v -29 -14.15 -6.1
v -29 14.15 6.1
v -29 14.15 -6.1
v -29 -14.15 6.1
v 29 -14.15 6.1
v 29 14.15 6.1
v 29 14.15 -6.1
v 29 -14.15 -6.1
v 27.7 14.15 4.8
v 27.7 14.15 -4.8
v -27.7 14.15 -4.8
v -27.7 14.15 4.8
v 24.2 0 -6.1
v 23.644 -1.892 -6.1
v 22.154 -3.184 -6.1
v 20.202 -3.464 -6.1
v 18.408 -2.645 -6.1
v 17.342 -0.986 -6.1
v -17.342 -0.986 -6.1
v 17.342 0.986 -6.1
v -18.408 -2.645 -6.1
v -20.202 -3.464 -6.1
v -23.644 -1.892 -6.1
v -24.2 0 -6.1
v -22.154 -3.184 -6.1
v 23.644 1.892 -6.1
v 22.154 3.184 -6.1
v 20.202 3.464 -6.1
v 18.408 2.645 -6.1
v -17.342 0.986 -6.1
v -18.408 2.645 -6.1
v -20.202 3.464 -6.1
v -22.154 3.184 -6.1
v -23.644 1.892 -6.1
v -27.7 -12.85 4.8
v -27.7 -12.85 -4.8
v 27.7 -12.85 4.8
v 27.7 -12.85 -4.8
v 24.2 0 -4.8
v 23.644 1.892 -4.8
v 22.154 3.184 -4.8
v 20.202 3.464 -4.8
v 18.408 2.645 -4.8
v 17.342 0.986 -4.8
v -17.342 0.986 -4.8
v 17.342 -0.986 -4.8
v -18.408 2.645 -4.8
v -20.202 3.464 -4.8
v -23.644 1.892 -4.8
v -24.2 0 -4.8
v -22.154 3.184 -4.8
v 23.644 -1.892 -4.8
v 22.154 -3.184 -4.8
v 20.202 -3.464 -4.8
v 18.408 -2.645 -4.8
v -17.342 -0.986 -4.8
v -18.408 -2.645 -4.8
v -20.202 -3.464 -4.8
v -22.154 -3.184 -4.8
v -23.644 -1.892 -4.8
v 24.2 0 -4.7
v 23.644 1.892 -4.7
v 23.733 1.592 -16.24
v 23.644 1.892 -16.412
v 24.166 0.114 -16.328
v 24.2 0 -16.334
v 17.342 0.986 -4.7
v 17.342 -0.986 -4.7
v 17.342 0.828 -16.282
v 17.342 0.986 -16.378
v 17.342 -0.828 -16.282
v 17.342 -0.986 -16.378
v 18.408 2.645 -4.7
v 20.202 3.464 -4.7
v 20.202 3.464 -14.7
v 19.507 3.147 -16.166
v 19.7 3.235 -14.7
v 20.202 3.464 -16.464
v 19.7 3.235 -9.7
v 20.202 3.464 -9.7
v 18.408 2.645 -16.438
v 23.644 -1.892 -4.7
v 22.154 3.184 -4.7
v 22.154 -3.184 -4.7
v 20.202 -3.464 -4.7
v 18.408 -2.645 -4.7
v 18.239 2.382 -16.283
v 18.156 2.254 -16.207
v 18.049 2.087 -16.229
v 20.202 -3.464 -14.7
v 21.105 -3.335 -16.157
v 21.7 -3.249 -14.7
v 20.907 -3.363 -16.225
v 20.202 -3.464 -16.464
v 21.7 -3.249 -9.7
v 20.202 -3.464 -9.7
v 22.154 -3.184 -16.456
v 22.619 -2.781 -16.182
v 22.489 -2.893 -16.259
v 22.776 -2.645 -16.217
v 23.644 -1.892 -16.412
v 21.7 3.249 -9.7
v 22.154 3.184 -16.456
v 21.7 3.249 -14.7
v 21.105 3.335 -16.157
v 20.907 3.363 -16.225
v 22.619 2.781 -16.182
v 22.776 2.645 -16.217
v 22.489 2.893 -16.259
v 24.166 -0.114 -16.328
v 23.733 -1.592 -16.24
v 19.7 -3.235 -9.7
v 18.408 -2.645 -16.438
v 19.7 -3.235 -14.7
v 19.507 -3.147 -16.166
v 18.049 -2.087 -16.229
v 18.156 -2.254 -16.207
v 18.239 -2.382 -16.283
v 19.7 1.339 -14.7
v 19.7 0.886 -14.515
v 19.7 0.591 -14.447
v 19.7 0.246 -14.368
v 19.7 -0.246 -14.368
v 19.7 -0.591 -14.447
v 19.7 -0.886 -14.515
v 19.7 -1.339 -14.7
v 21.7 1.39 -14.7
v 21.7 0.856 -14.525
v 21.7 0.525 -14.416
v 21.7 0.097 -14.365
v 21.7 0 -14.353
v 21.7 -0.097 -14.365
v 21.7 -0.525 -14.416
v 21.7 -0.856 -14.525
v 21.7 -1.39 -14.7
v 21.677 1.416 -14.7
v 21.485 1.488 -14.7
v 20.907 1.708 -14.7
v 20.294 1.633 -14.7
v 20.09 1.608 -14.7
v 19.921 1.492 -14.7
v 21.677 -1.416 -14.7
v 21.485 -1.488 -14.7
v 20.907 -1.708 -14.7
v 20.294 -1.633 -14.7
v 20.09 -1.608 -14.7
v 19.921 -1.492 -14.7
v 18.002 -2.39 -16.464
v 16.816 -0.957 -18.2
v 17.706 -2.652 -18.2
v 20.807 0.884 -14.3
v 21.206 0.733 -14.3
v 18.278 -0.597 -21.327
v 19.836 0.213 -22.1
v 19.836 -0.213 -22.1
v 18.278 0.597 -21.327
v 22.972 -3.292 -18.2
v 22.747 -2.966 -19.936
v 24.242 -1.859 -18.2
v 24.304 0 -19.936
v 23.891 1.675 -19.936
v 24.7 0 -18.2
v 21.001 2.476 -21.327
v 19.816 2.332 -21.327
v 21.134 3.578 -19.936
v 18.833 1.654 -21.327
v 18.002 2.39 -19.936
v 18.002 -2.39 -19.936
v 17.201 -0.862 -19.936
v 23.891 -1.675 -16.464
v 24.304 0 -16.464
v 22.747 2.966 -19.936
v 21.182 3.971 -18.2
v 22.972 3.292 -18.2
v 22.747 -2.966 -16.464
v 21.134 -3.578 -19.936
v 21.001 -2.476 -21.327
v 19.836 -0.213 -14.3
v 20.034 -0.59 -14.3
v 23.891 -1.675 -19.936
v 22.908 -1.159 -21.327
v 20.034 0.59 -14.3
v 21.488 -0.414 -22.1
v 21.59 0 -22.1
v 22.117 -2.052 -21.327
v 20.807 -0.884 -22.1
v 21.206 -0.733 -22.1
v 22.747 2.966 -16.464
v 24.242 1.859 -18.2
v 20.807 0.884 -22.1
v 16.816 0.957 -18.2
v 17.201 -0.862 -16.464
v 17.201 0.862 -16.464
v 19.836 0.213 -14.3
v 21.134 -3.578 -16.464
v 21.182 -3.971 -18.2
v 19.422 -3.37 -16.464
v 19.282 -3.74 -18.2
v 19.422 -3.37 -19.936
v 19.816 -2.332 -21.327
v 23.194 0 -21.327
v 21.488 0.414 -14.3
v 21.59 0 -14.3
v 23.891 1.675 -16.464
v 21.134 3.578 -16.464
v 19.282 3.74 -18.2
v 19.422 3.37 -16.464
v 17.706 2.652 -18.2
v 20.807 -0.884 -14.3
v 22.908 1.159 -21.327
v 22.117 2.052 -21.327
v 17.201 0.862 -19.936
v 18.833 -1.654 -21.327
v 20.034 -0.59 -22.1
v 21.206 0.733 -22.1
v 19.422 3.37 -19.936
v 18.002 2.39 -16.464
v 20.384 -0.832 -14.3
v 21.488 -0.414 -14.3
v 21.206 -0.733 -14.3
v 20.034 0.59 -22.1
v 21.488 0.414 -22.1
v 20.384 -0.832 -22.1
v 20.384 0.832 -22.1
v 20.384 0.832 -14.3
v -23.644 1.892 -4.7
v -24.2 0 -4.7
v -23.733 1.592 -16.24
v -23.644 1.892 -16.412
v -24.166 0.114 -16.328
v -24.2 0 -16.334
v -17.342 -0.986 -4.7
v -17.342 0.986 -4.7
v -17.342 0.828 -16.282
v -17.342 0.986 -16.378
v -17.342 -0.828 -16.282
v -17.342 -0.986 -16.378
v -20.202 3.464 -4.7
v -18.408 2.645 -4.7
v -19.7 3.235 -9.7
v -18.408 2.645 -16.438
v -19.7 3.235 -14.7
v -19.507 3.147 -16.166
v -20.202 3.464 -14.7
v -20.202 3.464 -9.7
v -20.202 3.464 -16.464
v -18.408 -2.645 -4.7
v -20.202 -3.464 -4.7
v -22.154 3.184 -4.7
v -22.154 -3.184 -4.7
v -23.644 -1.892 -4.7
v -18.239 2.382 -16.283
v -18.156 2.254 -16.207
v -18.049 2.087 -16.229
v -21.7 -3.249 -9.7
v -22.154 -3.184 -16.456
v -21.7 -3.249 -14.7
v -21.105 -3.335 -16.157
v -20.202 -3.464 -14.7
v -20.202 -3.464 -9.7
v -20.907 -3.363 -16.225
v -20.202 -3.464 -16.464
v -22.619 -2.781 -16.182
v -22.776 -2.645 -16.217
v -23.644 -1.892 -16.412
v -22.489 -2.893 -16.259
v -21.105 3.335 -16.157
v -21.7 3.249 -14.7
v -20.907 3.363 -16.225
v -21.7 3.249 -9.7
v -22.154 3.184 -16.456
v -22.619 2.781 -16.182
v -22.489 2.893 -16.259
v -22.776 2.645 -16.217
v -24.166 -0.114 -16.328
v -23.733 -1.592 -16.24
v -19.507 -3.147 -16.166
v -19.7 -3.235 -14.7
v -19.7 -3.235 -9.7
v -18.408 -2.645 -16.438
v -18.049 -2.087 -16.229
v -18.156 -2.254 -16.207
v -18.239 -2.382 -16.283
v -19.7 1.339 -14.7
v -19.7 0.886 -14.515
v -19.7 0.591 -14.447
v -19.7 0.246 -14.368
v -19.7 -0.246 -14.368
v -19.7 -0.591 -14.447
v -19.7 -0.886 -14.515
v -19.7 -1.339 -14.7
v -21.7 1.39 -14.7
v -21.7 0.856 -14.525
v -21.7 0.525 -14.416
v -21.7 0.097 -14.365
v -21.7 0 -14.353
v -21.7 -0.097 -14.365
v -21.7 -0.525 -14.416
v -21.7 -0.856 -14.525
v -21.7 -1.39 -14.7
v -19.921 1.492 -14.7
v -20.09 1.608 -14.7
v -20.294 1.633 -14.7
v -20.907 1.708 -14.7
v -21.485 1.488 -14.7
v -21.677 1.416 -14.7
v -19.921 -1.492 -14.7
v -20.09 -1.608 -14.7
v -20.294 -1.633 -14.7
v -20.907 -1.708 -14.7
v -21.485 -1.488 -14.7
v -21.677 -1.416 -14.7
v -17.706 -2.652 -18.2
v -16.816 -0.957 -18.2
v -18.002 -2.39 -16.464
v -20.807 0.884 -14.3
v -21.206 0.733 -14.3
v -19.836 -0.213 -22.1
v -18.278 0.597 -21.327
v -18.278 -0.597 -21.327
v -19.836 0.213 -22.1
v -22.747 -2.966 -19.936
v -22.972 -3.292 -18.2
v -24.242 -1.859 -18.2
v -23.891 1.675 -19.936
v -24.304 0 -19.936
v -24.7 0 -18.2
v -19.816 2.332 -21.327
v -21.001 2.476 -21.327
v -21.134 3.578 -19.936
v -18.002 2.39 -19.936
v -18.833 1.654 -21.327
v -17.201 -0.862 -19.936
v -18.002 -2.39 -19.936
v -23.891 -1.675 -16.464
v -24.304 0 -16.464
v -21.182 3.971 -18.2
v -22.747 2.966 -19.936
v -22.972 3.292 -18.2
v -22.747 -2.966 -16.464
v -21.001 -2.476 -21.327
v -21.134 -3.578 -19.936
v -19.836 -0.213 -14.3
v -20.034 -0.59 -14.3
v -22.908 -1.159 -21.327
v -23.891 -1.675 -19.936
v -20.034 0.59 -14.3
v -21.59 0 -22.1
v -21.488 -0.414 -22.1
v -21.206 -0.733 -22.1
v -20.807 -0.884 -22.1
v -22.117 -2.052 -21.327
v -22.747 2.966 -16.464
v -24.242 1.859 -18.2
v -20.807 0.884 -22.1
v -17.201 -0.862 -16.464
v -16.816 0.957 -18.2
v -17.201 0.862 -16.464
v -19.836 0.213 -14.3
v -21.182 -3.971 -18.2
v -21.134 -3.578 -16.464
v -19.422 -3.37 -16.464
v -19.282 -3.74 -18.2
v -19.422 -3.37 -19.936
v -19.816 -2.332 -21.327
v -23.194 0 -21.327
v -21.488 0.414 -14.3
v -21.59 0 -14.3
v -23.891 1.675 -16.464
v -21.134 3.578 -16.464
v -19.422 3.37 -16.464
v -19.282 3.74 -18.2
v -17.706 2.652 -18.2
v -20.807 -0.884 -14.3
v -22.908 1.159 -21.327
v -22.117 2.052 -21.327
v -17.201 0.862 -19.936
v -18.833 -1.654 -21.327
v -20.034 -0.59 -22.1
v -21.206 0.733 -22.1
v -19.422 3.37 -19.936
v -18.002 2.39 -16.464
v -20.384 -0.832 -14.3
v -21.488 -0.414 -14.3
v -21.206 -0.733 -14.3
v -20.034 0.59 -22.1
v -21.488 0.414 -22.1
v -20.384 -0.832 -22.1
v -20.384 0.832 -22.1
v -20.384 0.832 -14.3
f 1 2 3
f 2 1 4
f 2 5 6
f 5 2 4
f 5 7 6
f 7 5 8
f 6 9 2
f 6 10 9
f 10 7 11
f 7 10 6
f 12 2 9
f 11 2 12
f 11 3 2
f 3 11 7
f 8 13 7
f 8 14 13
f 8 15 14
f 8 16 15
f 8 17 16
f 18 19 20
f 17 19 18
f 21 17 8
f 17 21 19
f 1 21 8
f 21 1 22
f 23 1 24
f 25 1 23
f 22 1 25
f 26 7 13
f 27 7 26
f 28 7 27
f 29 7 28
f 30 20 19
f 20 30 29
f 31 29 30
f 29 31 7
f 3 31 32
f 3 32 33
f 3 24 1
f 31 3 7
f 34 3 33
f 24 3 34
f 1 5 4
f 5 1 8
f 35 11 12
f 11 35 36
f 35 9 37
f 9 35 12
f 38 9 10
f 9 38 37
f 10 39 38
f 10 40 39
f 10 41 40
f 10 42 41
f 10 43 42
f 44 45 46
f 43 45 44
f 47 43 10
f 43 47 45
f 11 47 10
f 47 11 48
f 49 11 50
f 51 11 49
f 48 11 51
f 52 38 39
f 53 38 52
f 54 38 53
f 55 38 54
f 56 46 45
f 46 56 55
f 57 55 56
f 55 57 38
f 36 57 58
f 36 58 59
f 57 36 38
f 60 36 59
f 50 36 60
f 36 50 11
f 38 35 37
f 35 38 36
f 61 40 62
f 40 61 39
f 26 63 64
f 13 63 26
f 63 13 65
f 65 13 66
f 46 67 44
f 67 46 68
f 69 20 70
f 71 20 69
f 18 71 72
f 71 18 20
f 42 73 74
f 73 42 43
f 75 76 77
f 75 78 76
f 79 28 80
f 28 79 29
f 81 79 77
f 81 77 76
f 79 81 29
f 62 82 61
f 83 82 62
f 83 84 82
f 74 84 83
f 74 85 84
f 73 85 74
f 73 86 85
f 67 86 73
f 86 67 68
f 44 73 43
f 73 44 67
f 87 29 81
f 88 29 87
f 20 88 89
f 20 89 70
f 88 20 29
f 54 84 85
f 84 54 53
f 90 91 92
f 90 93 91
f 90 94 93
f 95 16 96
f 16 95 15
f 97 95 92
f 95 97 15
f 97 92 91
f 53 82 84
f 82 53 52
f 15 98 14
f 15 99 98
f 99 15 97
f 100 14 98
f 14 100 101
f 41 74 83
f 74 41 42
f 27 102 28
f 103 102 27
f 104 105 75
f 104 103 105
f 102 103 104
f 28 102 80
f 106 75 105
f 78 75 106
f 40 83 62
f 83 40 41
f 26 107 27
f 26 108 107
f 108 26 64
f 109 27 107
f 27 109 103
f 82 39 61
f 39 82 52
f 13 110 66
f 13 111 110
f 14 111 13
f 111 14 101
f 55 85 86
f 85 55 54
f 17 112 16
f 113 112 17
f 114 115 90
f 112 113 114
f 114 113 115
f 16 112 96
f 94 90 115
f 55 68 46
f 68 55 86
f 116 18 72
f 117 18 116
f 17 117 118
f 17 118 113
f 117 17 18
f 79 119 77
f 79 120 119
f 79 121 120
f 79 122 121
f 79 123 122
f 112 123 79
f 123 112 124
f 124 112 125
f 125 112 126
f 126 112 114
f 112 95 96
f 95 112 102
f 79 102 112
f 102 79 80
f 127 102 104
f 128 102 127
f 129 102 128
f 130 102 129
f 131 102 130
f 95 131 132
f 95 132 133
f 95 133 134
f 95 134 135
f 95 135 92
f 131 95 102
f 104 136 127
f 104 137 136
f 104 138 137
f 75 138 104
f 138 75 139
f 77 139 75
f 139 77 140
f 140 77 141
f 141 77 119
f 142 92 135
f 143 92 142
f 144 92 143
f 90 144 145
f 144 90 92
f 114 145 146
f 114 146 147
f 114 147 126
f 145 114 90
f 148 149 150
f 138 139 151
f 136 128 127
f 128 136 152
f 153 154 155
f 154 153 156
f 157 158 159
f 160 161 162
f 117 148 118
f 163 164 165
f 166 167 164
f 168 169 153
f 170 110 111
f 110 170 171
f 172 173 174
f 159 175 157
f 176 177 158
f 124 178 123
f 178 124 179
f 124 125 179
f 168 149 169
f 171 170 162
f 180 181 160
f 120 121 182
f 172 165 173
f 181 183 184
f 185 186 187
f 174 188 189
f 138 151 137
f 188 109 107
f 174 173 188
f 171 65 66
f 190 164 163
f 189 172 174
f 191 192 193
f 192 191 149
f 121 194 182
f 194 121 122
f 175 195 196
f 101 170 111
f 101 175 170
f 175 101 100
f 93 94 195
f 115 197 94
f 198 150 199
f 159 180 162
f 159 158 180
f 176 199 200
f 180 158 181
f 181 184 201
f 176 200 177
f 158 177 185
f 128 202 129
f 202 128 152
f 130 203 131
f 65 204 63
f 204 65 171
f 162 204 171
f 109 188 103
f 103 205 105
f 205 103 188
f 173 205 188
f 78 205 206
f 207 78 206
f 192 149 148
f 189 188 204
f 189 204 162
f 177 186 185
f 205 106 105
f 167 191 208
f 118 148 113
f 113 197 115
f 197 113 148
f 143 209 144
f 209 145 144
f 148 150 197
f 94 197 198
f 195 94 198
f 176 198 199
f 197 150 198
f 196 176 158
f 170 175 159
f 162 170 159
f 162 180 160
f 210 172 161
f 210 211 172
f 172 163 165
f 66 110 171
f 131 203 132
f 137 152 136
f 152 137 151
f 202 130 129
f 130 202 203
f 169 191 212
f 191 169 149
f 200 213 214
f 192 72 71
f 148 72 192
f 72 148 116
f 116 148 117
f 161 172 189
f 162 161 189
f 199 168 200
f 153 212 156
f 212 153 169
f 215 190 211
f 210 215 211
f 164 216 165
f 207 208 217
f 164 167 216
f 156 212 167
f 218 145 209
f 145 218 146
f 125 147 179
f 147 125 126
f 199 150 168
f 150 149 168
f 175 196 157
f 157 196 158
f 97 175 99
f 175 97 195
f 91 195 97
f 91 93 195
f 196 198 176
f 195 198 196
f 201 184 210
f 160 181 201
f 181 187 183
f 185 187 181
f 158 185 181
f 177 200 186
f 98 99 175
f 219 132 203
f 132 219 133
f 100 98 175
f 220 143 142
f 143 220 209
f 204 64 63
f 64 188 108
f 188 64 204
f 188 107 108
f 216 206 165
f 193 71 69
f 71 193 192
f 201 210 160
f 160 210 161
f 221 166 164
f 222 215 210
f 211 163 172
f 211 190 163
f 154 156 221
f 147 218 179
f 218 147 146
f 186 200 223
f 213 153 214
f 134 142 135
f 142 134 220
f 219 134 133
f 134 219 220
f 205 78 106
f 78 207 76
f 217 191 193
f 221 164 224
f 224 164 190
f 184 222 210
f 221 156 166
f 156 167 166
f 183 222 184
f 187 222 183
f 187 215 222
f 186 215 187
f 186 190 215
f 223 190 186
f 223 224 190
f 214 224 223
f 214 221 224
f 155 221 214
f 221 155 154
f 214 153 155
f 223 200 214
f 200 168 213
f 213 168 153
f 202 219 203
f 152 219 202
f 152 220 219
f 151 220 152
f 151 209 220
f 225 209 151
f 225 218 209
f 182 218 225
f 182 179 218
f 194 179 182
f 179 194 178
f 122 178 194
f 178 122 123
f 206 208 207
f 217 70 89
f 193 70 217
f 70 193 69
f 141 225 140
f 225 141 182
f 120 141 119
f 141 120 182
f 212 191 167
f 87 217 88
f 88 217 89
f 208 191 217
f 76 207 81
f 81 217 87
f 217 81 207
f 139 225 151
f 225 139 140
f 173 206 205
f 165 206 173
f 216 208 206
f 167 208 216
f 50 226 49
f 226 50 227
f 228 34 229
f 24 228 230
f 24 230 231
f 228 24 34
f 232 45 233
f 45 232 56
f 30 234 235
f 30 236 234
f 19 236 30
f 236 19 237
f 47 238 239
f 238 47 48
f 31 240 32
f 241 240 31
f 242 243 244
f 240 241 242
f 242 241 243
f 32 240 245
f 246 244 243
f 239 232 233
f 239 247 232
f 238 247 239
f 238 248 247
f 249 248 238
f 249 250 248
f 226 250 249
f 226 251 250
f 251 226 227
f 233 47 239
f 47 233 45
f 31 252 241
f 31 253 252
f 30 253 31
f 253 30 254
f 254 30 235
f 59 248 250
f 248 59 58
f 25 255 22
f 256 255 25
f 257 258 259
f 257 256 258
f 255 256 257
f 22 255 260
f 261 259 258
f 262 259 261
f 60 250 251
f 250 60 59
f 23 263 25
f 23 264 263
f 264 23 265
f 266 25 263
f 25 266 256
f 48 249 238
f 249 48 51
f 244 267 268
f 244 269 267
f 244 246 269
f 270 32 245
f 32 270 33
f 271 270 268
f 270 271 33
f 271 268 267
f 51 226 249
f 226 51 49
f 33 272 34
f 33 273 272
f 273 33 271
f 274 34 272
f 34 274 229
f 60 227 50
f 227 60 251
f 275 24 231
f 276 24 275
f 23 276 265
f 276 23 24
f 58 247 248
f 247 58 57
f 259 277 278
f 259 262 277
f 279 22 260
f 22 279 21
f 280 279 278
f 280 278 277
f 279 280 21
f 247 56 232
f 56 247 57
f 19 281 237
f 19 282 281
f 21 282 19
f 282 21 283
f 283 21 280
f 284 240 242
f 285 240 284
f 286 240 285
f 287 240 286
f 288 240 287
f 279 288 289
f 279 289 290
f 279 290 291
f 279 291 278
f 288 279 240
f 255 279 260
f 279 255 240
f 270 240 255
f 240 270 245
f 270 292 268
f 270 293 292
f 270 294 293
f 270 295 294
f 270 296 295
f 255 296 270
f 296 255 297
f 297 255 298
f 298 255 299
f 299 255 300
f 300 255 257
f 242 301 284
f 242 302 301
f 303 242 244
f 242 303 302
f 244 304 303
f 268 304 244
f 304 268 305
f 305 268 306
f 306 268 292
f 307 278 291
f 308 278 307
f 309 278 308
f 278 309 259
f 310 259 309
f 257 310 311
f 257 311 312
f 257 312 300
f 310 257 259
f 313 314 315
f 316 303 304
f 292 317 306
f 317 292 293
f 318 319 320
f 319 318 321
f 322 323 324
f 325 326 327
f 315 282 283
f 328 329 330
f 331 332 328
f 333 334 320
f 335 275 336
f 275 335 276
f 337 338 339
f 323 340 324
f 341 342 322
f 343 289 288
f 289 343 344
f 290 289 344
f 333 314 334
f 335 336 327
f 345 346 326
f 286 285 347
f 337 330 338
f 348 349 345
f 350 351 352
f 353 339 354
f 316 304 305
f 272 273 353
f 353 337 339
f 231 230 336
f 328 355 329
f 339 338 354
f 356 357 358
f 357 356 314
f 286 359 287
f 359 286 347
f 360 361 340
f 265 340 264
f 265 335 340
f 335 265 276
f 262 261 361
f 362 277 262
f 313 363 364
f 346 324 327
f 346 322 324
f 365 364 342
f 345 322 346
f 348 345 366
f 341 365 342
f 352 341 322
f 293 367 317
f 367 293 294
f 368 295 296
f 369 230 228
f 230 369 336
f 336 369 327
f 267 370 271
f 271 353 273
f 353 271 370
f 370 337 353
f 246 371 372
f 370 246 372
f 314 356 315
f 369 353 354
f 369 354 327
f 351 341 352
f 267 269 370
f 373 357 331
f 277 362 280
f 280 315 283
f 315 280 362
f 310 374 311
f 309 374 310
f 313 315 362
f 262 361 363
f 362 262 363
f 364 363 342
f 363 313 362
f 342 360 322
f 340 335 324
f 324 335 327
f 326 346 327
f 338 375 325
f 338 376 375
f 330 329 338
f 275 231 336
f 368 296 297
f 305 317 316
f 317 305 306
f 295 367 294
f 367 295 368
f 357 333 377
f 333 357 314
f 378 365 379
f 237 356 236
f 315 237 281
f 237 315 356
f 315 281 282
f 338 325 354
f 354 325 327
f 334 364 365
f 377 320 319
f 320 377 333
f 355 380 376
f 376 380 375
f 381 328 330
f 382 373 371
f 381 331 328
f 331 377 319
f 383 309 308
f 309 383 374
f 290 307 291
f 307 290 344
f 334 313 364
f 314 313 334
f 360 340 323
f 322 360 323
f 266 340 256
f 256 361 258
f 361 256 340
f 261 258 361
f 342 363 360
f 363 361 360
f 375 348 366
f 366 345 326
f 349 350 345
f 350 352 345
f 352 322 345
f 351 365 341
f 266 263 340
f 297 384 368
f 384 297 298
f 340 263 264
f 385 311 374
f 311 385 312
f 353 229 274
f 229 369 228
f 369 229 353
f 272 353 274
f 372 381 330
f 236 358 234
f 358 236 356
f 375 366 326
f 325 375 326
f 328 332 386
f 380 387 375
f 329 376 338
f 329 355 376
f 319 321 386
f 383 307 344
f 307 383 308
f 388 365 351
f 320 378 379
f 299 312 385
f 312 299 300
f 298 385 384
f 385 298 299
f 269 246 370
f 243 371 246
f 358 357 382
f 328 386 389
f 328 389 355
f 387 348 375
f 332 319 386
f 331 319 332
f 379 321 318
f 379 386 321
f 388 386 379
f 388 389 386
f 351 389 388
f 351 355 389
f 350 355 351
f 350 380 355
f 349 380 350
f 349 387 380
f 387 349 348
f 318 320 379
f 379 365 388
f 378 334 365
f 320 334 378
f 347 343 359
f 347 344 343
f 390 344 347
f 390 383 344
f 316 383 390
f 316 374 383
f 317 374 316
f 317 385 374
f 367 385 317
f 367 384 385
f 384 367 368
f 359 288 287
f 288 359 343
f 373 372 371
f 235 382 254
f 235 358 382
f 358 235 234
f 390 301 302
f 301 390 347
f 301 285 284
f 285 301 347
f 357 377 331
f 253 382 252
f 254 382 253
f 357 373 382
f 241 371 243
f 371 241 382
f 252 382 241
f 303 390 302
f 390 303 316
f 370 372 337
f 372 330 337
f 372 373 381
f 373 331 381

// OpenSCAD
module copy_mirror(vec=[0,1,0])
{
    children();
    mirror(vec) children();
}


wandstaerke=1.3;

breite=58;
laenge=28.3;
hoehe=12.2;
difference(){
    cube([breite, laenge, hoehe], center=true);
    translate([0, wandstaerke , 0]){
        cube([breite-wandstaerke*2, laenge, hoehe-wandstaerke*2], center=true);
    }
}

abstand_zum_rand = 8.3;
hoehe_pin = 15;
radius_pin = 3.5;


copy_mirror([1,0,0]){
    translate([breite/2 - abstand_zum_rand,0,-hoehe]){
        difference(){            
            cylinder(h=hoehe_pin, r=3.5,center=true);
            cube([2, 15, 5], center=true);              
        } 
        translate([0,0,-6]){
                sphere(r=4);           
        } 
    }
}
